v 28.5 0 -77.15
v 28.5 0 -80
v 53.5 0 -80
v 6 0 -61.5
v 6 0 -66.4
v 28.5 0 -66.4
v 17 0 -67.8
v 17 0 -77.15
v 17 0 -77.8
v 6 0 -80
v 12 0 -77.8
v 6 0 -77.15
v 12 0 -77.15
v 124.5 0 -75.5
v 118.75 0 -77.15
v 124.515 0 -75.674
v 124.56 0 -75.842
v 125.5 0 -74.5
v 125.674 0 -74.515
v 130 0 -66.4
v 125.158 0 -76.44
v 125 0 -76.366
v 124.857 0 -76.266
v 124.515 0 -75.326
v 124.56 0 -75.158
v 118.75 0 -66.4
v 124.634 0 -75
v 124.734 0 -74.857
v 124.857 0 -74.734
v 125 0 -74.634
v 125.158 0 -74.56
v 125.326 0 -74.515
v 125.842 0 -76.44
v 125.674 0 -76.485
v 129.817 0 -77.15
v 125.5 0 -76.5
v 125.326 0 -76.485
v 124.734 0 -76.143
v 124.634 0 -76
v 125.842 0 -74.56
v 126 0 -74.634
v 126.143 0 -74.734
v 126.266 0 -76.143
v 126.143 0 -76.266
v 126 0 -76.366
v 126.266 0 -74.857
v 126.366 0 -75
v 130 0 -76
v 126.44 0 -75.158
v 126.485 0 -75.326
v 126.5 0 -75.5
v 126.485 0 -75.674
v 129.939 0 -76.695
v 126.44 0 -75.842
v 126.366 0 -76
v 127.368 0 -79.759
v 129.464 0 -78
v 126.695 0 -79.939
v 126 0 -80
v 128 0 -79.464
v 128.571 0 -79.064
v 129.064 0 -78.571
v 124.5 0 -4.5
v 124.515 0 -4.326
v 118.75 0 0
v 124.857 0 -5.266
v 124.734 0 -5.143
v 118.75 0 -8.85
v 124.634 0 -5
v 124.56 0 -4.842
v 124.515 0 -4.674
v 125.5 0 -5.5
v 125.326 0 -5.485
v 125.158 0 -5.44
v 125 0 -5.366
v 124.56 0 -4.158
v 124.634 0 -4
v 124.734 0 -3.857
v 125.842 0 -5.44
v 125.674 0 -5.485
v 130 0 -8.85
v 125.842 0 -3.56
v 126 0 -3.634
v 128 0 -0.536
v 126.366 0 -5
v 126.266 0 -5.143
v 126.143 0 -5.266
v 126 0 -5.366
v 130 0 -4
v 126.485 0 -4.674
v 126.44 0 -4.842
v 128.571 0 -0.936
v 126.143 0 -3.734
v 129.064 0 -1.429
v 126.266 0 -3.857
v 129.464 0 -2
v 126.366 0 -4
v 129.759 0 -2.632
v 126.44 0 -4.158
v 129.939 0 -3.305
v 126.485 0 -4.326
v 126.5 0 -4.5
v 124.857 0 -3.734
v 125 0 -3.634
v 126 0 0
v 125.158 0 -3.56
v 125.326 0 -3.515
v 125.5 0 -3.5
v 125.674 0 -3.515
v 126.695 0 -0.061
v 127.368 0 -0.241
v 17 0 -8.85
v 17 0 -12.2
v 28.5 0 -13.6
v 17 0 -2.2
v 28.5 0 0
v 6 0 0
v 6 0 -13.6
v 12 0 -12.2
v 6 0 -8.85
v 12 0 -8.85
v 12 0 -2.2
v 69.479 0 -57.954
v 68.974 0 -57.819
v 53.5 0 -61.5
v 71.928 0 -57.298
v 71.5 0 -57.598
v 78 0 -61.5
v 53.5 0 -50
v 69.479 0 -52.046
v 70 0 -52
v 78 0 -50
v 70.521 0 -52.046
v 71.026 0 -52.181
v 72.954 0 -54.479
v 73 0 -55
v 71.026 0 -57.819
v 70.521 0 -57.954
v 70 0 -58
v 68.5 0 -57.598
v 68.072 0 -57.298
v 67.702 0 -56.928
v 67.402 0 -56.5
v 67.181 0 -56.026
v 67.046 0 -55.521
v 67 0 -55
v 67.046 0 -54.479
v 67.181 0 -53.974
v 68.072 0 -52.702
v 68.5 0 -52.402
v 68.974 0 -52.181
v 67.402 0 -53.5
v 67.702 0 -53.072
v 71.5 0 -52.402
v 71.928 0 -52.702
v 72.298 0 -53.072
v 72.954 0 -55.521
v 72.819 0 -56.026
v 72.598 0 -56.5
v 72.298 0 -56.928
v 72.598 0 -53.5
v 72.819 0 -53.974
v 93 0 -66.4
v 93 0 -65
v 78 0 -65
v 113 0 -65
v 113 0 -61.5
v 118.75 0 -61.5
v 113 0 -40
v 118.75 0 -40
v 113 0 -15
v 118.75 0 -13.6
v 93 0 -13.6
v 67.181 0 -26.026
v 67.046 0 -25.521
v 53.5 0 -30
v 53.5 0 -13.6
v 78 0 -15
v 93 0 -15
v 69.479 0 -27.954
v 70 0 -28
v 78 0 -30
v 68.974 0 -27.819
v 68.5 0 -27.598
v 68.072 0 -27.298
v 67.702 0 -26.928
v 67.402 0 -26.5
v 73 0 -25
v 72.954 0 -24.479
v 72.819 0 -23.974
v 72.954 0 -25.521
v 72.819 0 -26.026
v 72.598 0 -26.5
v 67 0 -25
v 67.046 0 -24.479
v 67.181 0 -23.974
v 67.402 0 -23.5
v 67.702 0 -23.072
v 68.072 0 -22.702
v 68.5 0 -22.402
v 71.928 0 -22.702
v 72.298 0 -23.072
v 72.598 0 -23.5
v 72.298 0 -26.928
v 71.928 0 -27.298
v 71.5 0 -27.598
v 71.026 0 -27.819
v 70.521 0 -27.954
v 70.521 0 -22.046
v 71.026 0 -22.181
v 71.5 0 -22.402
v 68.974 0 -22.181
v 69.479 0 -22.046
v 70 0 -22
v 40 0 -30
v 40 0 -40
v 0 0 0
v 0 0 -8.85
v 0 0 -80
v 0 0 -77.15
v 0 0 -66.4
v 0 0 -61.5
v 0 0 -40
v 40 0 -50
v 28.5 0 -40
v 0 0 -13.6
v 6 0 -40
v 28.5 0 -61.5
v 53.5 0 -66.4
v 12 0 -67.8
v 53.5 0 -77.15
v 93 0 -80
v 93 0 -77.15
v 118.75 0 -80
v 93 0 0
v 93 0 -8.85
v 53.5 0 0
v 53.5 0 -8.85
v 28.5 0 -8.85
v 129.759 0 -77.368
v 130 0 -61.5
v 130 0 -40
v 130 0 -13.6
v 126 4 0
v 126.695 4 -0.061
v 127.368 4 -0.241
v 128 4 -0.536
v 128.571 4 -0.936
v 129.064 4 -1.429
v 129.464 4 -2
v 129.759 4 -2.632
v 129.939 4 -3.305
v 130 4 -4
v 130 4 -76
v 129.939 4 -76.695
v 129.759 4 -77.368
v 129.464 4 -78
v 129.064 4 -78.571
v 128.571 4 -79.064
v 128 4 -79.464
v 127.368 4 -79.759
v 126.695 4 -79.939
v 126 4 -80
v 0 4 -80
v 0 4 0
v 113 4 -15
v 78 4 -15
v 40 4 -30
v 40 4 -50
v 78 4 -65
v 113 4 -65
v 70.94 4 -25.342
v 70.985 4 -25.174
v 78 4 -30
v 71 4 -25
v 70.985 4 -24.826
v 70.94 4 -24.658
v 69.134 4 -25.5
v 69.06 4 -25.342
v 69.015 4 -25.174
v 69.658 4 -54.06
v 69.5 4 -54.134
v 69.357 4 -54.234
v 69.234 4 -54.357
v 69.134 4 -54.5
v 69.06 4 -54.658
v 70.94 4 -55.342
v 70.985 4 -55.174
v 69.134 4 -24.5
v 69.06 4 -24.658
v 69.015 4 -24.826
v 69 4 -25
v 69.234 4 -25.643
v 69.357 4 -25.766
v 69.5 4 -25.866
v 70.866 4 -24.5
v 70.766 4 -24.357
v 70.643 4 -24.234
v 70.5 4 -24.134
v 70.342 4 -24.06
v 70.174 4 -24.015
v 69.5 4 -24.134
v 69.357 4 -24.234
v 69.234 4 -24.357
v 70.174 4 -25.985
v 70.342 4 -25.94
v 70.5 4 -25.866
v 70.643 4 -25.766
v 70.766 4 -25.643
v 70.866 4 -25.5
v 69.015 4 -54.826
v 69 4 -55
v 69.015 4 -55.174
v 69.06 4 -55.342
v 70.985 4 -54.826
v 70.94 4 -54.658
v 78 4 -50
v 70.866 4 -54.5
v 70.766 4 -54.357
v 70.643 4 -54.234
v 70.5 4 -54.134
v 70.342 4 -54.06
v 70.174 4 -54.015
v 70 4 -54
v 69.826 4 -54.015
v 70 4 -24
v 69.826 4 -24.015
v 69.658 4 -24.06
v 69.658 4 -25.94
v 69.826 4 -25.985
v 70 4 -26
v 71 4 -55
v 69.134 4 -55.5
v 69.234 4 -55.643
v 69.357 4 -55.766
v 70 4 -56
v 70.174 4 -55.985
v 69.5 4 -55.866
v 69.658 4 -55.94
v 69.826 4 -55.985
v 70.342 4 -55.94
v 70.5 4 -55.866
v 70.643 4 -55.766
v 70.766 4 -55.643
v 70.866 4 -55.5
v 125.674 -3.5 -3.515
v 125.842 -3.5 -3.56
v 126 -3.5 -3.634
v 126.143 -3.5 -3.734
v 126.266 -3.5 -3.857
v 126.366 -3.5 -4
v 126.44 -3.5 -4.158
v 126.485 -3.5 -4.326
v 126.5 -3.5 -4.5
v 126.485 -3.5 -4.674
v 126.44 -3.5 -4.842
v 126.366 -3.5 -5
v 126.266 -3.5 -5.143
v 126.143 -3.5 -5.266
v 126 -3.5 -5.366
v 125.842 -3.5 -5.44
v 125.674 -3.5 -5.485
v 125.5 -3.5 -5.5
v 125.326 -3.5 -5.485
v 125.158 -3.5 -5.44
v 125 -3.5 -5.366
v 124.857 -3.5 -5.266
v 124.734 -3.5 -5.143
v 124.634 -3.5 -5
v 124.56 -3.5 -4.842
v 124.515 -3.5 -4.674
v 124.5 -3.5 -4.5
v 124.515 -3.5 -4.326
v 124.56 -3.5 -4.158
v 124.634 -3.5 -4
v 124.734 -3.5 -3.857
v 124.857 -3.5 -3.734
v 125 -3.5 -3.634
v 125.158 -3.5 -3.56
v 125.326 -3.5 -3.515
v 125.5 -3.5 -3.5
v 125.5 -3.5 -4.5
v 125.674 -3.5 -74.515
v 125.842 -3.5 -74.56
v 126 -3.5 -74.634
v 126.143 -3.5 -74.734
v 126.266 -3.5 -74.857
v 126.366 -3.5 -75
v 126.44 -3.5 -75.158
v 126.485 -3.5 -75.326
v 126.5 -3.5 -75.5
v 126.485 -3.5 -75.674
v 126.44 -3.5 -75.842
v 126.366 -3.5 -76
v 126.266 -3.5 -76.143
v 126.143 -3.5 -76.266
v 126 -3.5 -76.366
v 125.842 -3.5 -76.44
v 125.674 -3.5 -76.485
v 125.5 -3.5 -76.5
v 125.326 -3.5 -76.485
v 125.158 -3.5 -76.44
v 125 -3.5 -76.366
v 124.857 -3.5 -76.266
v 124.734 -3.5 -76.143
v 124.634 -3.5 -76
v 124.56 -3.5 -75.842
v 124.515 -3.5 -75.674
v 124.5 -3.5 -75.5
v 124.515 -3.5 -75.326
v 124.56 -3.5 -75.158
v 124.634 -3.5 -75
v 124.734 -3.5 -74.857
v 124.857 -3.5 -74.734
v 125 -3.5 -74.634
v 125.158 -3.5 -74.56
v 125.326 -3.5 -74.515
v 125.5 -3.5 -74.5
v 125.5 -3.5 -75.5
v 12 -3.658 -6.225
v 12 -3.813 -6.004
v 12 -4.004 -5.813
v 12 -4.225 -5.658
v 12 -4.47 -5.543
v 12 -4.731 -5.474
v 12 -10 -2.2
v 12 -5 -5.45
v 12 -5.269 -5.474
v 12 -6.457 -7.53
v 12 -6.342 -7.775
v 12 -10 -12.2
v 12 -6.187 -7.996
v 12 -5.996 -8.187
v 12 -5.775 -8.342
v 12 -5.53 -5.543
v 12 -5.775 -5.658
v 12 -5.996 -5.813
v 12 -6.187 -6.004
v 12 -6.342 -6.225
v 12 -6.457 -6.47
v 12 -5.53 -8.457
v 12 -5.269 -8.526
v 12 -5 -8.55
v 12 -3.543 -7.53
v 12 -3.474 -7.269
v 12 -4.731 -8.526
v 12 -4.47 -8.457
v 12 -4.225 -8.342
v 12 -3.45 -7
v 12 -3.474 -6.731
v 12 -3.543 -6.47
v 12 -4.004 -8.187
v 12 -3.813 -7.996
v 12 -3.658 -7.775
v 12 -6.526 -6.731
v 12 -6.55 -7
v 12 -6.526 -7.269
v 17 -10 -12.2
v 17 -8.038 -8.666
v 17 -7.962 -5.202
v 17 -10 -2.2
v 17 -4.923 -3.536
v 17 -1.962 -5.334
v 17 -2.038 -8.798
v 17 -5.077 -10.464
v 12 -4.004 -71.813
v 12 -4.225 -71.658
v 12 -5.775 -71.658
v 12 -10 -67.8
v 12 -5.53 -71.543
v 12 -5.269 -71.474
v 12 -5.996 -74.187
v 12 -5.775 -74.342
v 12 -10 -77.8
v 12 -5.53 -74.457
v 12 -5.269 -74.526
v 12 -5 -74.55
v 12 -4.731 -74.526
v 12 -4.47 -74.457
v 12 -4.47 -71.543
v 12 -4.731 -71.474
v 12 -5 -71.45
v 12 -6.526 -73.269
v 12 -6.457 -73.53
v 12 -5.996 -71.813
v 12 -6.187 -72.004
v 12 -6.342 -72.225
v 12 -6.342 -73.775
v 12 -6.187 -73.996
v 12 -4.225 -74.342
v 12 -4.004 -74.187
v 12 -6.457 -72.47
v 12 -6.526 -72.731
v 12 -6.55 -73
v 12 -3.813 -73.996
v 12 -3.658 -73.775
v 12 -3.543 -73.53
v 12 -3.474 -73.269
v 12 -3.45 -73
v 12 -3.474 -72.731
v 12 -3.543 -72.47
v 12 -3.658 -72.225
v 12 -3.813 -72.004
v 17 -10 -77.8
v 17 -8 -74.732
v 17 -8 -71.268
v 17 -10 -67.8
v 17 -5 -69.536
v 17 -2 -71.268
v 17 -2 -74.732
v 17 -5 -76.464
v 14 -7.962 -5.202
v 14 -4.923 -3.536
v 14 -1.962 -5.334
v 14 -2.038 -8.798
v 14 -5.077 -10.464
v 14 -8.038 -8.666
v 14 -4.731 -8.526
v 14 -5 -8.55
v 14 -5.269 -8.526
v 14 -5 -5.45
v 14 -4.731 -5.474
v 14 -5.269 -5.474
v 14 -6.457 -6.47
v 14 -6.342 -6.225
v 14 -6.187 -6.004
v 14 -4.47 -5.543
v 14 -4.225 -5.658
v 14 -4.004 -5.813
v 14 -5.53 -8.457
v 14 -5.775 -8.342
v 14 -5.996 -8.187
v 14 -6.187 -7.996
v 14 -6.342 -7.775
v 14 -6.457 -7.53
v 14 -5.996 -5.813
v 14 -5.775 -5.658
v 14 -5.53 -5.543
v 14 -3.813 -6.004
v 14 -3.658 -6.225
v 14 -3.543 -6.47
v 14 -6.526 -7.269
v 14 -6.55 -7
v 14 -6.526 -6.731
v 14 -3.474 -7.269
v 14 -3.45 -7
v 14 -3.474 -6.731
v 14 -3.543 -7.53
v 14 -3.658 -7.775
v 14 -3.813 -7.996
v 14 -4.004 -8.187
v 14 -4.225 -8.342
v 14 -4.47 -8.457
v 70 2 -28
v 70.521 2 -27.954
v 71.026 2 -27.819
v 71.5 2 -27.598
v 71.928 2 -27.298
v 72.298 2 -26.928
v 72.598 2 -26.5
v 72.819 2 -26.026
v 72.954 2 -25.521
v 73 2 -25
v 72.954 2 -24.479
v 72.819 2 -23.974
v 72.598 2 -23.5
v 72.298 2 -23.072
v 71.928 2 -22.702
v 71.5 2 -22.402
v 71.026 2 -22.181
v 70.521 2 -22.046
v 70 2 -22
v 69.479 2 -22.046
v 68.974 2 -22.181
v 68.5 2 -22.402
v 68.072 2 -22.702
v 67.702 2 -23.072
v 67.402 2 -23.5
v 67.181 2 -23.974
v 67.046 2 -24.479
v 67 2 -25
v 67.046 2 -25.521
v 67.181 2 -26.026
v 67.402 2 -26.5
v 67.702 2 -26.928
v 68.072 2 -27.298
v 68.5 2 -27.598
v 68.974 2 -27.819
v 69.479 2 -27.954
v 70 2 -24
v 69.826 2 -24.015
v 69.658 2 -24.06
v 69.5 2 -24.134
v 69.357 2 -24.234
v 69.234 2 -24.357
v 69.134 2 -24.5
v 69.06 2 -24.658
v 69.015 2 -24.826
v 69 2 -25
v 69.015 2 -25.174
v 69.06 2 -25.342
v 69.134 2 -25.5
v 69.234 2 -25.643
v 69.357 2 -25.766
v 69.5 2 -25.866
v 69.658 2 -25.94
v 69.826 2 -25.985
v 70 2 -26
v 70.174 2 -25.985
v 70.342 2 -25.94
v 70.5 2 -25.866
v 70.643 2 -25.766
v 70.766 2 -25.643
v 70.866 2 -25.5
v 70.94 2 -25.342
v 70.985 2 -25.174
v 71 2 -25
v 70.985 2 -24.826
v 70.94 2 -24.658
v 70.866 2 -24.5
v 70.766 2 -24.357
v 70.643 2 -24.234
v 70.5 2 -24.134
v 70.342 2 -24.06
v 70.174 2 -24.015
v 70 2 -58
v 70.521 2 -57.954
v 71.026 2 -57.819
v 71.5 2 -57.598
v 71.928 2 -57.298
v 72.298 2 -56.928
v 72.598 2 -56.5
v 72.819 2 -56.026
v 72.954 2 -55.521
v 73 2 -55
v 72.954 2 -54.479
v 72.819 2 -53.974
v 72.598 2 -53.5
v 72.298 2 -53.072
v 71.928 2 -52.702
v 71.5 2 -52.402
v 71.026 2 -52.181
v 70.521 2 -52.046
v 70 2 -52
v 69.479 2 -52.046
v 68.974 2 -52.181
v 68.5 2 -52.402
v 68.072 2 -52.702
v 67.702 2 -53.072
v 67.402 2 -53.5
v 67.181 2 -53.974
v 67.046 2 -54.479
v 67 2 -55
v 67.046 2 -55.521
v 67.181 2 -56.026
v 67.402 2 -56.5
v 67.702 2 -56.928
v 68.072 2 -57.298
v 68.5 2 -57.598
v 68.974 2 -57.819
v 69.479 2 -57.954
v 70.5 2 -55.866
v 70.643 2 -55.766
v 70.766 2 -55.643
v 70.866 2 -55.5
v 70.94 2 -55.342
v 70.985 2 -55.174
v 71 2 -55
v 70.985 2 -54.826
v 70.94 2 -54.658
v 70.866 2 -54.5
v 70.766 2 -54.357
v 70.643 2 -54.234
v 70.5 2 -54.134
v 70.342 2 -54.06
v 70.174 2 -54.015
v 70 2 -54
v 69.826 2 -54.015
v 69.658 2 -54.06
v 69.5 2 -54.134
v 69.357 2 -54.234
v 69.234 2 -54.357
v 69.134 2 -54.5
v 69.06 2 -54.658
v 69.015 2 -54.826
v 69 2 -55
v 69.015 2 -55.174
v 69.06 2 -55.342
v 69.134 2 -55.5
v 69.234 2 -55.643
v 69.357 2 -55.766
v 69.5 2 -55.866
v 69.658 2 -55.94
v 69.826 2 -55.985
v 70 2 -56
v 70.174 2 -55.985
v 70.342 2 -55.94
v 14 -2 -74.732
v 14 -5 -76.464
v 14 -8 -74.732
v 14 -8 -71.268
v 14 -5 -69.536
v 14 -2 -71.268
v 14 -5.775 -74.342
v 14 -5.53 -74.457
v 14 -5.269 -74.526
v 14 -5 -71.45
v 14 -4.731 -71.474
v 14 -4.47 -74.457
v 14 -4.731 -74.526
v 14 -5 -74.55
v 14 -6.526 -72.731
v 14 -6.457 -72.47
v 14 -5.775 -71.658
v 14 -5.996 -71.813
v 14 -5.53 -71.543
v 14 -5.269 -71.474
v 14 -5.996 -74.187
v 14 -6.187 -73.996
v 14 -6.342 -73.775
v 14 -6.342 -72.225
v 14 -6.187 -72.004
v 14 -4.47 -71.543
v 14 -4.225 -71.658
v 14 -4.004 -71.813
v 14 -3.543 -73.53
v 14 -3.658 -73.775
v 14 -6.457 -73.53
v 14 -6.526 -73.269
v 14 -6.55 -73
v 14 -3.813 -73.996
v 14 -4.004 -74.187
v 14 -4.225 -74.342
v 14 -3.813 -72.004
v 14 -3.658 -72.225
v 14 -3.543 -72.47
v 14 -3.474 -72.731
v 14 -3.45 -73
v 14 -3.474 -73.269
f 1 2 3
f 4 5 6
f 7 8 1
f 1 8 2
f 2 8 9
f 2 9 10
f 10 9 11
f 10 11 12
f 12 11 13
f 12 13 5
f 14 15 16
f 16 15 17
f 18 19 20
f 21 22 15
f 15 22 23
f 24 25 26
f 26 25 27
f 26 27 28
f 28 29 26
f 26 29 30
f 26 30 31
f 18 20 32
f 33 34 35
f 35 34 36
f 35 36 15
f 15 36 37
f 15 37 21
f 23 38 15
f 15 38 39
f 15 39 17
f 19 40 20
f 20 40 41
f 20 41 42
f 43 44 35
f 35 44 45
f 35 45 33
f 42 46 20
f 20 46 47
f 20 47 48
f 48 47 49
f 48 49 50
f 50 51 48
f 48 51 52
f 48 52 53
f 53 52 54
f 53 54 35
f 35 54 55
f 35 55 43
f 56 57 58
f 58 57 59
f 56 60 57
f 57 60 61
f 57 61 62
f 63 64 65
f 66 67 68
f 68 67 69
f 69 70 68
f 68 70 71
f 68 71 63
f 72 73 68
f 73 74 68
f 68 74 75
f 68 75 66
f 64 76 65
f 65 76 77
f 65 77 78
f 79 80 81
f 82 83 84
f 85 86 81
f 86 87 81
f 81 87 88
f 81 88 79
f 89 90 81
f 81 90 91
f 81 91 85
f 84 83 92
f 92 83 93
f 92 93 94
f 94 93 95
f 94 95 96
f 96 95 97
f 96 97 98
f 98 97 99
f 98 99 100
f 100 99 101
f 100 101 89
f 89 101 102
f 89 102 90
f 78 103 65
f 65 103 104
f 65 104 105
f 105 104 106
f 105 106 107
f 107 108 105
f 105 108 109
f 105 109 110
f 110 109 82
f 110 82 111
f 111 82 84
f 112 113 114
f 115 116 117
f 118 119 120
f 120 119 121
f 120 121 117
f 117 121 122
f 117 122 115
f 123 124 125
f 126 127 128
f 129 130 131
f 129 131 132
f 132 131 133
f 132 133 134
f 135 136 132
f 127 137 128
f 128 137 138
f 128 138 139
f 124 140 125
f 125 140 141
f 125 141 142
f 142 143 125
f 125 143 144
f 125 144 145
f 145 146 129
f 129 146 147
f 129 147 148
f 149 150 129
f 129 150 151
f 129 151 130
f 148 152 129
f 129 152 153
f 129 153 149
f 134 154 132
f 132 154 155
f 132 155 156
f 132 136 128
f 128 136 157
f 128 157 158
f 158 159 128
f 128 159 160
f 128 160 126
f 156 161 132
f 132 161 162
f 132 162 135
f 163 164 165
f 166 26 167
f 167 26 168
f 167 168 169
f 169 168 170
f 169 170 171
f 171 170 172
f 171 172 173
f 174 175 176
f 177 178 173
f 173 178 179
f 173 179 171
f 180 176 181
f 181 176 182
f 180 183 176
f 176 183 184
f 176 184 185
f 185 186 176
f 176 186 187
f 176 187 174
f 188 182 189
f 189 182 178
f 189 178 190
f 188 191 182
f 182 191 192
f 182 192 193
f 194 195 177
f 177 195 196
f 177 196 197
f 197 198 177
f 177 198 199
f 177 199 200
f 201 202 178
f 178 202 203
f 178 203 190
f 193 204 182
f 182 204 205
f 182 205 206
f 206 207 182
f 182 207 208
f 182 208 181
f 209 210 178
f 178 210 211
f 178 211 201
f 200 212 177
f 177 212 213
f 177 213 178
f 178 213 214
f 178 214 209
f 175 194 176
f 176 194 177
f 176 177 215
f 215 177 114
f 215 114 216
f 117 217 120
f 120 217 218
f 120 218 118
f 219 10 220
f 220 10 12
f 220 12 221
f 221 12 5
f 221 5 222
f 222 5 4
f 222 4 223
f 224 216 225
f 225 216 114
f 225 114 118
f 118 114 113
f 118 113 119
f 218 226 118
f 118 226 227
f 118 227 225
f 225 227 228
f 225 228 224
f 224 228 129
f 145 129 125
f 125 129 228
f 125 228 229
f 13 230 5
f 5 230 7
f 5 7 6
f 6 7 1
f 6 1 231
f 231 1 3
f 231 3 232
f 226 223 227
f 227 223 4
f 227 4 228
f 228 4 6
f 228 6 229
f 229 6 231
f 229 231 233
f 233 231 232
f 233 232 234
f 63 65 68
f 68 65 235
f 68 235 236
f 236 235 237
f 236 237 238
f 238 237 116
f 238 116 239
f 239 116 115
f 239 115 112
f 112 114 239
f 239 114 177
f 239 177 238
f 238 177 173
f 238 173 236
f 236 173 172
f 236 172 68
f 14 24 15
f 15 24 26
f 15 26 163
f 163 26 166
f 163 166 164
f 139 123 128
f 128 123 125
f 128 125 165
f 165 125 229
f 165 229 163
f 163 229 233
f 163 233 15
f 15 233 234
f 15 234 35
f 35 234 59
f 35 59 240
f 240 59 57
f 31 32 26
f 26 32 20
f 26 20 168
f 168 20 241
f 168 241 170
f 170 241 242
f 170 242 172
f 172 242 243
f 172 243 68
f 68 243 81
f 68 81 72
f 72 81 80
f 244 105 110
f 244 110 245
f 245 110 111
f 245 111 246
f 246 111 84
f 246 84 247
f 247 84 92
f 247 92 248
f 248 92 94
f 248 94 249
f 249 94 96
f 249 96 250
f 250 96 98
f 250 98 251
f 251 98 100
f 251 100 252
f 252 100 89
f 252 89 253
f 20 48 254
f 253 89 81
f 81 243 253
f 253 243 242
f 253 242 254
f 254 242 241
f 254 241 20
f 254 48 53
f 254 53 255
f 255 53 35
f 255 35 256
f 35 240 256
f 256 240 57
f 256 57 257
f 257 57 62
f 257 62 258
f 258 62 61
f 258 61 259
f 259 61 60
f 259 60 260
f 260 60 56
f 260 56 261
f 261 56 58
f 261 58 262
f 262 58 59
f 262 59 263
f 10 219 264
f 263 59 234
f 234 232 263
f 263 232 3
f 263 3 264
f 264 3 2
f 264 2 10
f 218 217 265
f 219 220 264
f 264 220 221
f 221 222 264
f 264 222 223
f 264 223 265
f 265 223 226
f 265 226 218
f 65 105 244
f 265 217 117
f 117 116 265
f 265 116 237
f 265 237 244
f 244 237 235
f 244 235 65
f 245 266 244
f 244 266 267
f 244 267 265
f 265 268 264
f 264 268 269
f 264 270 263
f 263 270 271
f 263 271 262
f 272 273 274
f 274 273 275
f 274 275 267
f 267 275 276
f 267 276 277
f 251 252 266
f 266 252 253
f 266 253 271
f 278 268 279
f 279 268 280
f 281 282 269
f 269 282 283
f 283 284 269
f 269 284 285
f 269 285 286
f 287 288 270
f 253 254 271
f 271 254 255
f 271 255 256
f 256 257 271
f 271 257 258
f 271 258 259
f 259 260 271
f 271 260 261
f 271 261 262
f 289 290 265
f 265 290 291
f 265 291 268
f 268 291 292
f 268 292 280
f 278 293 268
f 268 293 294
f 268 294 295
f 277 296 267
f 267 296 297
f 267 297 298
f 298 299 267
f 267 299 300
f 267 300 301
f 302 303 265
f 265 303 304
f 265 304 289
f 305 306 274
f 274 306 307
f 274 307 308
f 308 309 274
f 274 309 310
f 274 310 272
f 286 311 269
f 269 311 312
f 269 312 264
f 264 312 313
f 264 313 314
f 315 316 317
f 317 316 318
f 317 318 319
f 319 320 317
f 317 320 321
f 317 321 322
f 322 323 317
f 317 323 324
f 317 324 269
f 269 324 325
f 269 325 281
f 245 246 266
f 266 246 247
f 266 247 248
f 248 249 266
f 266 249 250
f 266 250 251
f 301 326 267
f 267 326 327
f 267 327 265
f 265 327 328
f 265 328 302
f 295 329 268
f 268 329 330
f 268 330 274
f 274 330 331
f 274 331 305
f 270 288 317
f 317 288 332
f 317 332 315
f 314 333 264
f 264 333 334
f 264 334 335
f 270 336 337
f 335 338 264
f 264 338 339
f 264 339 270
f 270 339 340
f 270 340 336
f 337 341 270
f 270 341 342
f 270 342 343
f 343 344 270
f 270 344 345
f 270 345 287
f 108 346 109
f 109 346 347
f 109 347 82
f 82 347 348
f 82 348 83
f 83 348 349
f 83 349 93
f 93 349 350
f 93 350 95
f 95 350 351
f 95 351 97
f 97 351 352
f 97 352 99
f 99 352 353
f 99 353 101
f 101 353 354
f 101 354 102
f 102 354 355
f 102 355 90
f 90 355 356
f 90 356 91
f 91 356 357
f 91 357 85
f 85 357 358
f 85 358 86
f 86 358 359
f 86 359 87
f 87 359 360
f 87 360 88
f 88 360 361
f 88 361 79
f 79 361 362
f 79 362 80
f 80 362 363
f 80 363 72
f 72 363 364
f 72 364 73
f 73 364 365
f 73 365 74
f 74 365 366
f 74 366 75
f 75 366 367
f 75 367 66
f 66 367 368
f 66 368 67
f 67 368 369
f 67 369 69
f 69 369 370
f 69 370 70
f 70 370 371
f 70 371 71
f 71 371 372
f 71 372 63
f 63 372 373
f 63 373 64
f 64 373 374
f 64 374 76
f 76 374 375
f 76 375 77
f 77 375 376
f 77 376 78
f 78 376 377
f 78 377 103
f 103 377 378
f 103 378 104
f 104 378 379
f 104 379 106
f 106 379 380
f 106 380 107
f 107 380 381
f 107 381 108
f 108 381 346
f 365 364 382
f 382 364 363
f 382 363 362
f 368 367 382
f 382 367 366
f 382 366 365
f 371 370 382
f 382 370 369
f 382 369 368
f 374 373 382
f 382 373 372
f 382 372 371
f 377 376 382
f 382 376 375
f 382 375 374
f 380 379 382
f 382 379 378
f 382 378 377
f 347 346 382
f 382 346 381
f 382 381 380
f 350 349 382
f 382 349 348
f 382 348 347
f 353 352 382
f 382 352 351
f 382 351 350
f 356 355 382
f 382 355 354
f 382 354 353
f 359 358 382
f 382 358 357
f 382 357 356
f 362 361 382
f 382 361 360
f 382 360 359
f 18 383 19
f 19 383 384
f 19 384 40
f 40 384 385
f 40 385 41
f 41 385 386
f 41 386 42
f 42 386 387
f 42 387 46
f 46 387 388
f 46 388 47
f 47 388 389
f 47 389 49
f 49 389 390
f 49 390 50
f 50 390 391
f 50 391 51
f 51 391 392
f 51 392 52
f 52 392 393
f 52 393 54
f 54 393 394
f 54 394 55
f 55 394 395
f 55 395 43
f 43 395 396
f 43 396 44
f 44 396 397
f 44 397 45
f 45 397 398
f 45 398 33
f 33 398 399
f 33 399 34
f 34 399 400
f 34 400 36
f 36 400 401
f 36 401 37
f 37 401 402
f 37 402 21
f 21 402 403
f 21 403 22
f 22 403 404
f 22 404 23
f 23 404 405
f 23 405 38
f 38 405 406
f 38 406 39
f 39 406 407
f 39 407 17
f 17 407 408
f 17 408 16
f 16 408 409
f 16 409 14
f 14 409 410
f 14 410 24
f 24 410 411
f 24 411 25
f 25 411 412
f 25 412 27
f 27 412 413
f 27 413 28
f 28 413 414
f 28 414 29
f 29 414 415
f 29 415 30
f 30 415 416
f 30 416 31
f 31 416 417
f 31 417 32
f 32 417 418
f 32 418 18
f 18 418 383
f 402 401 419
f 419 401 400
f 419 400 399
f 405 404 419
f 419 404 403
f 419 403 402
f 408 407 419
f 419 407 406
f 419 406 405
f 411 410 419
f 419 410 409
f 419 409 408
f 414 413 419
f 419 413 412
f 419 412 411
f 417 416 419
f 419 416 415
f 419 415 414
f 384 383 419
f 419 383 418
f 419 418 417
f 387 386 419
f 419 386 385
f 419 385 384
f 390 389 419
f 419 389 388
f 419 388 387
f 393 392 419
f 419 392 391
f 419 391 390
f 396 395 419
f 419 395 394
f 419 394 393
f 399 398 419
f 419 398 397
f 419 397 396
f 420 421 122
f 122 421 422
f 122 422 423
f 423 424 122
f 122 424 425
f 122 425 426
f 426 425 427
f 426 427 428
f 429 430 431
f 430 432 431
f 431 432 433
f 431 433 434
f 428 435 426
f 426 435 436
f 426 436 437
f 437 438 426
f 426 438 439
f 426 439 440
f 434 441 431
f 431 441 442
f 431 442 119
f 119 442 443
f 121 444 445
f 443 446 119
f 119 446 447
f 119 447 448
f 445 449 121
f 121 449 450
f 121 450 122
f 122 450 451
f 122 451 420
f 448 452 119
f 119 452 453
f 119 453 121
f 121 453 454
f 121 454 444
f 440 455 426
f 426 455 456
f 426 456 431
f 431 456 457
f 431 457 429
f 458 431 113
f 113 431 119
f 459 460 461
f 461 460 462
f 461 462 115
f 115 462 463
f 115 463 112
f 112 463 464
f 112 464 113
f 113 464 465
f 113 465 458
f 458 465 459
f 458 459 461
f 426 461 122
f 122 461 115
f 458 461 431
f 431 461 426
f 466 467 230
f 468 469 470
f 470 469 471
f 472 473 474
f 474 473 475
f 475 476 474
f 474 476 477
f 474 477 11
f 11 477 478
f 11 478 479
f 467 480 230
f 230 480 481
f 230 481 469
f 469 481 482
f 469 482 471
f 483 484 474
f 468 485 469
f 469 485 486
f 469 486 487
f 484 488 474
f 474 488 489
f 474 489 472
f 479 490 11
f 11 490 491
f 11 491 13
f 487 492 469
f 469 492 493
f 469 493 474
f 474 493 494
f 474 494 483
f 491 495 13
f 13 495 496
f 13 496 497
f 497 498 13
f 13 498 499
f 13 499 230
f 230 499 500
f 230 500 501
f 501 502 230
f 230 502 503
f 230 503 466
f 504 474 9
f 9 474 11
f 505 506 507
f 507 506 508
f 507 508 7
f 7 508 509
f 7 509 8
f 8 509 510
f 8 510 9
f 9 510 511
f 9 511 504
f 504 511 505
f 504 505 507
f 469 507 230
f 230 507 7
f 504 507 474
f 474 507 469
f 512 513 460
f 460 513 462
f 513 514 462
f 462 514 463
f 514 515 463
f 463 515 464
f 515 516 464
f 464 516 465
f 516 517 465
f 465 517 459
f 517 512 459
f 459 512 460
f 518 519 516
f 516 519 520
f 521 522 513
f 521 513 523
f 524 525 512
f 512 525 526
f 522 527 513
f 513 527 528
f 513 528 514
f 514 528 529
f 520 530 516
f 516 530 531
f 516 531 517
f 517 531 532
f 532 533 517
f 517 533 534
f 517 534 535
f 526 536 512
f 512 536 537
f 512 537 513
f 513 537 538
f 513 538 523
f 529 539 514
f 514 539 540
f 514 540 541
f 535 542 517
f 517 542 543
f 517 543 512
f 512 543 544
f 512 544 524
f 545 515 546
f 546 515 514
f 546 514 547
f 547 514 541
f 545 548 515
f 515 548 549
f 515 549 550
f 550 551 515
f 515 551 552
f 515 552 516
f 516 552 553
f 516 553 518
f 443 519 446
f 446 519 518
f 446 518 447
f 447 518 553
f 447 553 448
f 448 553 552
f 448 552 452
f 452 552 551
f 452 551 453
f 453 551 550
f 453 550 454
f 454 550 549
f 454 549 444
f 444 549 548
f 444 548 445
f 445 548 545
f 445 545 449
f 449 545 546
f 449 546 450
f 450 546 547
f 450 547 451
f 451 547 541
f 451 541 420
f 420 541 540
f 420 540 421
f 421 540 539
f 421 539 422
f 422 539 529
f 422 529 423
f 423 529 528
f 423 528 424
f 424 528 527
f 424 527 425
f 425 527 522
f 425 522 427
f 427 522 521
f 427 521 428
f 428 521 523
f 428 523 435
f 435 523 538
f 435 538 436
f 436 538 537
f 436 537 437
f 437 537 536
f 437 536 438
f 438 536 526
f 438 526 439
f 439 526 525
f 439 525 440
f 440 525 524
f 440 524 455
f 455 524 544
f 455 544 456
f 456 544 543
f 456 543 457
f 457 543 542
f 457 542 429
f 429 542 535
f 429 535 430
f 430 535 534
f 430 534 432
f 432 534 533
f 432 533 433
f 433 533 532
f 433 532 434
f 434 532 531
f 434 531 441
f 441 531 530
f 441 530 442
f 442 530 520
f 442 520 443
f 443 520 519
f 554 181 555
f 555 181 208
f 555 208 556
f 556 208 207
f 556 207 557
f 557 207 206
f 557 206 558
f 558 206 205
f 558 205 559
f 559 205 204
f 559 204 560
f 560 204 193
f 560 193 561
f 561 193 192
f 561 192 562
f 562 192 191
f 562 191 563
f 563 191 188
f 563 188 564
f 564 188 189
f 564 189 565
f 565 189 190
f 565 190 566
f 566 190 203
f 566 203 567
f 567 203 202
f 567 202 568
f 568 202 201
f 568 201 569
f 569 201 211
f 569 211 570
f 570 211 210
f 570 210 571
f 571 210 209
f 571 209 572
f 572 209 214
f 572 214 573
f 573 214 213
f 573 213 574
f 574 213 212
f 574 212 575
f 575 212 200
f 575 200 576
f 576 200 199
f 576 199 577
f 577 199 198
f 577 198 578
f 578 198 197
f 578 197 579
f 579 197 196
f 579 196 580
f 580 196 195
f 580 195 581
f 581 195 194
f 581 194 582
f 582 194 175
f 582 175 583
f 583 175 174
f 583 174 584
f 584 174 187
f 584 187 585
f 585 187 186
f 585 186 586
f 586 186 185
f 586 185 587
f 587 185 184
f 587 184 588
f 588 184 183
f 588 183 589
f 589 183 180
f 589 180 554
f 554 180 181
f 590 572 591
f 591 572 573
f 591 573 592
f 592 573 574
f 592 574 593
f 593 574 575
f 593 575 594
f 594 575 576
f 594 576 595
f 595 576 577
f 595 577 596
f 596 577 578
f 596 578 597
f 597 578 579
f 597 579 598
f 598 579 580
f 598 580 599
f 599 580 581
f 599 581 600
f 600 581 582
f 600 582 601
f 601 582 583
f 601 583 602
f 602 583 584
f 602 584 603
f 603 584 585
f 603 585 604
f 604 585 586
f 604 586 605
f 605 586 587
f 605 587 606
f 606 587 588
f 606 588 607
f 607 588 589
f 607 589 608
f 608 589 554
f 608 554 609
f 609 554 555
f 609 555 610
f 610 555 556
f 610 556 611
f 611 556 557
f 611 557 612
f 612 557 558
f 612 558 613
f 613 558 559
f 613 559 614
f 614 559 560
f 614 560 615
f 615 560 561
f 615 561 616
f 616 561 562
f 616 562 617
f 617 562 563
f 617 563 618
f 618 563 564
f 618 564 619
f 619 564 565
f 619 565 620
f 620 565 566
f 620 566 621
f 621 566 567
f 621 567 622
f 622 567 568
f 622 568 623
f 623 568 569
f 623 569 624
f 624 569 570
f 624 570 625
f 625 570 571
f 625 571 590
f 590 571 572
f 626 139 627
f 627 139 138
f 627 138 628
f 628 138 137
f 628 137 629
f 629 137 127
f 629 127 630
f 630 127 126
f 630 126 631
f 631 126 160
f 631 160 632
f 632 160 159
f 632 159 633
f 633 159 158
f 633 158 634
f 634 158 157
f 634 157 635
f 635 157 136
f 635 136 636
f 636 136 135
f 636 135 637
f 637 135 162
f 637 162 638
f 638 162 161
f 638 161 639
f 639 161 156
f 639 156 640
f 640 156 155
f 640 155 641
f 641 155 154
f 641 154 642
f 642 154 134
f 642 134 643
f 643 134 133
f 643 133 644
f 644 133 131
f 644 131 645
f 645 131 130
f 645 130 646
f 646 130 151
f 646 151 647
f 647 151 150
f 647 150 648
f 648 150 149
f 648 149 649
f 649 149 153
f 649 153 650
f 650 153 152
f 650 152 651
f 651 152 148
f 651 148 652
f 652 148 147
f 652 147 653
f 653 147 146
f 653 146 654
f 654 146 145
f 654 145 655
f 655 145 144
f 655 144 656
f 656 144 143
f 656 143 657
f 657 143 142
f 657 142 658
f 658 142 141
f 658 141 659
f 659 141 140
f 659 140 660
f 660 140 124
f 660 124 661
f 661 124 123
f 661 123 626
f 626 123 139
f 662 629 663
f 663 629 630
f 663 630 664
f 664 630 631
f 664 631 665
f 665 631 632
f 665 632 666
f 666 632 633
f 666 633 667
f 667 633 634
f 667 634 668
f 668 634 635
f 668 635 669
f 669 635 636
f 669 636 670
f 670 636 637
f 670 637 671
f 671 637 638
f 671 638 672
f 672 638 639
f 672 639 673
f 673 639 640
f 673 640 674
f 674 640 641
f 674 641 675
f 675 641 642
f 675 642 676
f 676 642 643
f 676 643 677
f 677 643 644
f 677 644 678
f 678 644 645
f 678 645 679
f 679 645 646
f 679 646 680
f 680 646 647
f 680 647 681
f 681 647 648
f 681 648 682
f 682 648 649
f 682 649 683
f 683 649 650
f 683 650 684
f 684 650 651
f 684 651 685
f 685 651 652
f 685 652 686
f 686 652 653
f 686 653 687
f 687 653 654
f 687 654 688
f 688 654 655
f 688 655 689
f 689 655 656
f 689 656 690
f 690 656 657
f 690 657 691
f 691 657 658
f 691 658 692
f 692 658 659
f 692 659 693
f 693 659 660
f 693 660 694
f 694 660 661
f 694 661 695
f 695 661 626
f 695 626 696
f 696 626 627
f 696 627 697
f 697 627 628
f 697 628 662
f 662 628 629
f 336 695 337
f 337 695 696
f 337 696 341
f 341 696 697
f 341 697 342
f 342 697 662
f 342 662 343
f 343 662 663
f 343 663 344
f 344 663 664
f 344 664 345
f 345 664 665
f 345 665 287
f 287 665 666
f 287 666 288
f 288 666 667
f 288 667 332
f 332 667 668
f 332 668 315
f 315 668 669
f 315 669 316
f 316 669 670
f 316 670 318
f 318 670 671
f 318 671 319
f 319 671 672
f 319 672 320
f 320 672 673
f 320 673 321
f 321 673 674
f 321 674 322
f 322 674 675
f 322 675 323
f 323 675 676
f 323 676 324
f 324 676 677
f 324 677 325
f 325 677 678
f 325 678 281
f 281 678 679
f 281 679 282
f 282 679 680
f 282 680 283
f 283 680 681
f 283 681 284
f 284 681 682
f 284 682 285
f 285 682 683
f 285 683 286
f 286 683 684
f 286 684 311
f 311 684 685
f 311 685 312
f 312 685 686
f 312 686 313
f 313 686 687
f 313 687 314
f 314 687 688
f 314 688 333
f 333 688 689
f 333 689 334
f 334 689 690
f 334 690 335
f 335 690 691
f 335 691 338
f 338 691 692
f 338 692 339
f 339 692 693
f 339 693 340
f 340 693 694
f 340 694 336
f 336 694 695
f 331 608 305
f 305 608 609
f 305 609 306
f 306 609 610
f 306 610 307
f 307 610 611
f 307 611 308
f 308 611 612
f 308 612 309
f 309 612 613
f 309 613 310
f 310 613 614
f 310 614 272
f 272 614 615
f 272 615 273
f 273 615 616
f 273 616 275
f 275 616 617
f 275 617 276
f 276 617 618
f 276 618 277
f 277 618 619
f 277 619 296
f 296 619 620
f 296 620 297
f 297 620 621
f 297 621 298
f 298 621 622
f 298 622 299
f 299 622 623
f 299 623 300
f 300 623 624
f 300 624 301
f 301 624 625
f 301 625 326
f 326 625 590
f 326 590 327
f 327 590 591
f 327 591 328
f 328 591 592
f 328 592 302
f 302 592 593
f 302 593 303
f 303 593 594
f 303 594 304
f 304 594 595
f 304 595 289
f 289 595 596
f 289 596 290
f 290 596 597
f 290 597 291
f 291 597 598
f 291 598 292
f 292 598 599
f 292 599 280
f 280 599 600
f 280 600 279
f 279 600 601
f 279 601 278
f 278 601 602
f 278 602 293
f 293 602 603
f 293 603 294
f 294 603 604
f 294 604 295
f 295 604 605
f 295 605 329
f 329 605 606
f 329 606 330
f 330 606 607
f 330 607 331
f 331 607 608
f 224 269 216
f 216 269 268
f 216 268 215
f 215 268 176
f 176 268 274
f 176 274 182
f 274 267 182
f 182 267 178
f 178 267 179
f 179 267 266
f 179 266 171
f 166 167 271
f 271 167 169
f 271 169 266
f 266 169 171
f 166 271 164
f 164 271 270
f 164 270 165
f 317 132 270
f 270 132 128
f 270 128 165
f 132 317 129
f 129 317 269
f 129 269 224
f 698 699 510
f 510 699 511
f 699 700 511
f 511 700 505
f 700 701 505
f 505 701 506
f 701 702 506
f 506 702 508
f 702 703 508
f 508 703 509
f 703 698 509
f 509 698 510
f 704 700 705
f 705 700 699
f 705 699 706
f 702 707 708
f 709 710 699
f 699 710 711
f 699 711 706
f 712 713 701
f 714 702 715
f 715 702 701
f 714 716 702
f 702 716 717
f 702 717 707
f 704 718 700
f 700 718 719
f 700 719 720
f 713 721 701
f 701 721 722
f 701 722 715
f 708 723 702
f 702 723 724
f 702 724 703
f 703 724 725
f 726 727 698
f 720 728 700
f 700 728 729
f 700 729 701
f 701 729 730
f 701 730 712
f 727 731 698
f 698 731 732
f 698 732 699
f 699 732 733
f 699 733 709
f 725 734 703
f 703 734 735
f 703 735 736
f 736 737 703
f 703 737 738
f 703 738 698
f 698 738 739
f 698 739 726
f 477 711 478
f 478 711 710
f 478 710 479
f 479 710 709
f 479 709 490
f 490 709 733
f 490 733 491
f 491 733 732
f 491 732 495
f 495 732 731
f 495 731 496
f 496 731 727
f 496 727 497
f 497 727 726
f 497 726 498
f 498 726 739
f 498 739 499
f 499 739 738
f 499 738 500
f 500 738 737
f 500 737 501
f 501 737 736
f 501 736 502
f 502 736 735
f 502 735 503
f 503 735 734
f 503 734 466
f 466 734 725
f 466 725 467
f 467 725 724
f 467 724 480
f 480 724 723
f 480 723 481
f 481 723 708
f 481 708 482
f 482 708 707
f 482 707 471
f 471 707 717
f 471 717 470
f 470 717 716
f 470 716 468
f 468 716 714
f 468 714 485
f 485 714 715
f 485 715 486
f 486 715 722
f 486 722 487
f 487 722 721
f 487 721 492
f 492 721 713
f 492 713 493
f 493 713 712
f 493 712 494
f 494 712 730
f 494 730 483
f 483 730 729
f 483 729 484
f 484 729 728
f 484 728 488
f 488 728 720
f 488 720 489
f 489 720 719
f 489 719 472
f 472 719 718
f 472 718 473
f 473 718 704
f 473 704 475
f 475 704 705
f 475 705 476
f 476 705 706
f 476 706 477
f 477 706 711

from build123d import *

# Parameters (mm, degrees)
BOSS_EXTRUDE1_DEPTH = 4
SKETCH2_R           = 1
BOSS_EXTRUDE2_DEPTH = 3.5
SKETCH3_W           = 5
SKETCH3_H           = 10
BOSS_EXTRUDE3_DEPTH = 10
SKETCH4_R           = 1.55
CUT_EXTRUDE1_DEPTH  = 3
SKETCH4_3_R         = 1.55
CUT_EXTRUDE2_DEPTH  = 5
SKETCH7_R           = 3
CUT_EXTRUDE3_DEPTH  = 2
SKETCH8_R           = 1
CUT_EXTRUDE4_DEPTH  = 2
SKETCH9_R           = 1
CUT_EXTRUDE5_DEPTH  = 2
CUT_EXTRUDE6_DEPTH  = 4
SKETCH6_R           = 1.55
CUT_EXTRUDE7_DEPTH  = 3
SKETCH6_3_R         = 1.55
CUT_EXTRUDE8_DEPTH  = 5


with BuildPart() as part:
    # Sketch1 → Boss-Extrude1 (new body)
    with BuildSketch(Plane(origin=(0, 0, 0), x_dir=(1, 0, 0), z_dir=(0, 1, 0))):
        with BuildLine():
            Line((0, 80), (0, 0))
            Line((0, 0), (126, 0))
            ThreePointArc((126, 0), (128.828427125, 1.171572875), (130, 4))
            Line((130, 4), (130, 76))
            ThreePointArc((130, 76), (128.828427125, 78.828427125), (126, 80))
            Line((126, 80), (0, 80))
        make_face()
    extrude(amount=BOSS_EXTRUDE1_DEPTH)

    # Sketch2 → Boss-Extrude2 (add)
    with BuildSketch(Plane(origin=(0, 0, 0), x_dir=(-1, 0, 0), z_dir=(0, -1, 0))):
        with Locations(Location((-125.5, 4.5, 0), (0, 0, 270))):
            Circle(SKETCH2_R)
        with Locations(Location((-125.5, 75.5, 0), (0, 0, 270))):
            Circle(SKETCH2_R)
    extrude(amount=BOSS_EXTRUDE2_DEPTH)

    # Sketch3 → Boss-Extrude3 (add)
    with BuildSketch(Plane(origin=(0, 0, 0), x_dir=(-1, 0, 0), z_dir=(0, -1, 0))):
        with Locations((-14.5, 7.2)):
            Rectangle(SKETCH3_W, SKETCH3_H)
        with Locations((-14.5, 72.8)):
            Rectangle(SKETCH3_W, SKETCH3_H)
    extrude(amount=BOSS_EXTRUDE3_DEPTH)

    # Sketch4 → Cut-Extrude1 (cut)
    with BuildSketch(Plane(origin=(17, 0, 0), x_dir=(0, 0, -1), z_dir=(1, 0, 0))):
        Polygon((3.535898385, -4.923428426), (5.201636264, -7.961714213), (8.665737879, -8.038285787), (10.464101615, -5.076571574), (8.798363736, -2.038285787), (5.334262121, -1.961714213), align=None)
        with Locations((7, -5)):
            Circle(SKETCH4_R, mode=Mode.SUBTRACT)
    extrude(amount=-CUT_EXTRUDE1_DEPTH, mode=Mode.SUBTRACT)

    # Sketch4<3> → Cut-Extrude2 (cut)
    with BuildSketch(Plane(origin=(17, 0, 0), x_dir=(0, 0, -1), z_dir=(1, 0, 0))):
        with Locations((7, -5)):
            Circle(SKETCH4_3_R)
    extrude(amount=-CUT_EXTRUDE2_DEPTH, mode=Mode.SUBTRACT)

    # Sketch7 → Cut-Extrude3 (cut)
    with BuildSketch(Plane.XZ):
        with Locations(Location((70, -25, 0), (0, 0, 270))):
            Circle(SKETCH7_R)
        with Locations(Location((70, -55, 0), (0, 0, 270))):
            Circle(SKETCH7_R)
    extrude(amount=-CUT_EXTRUDE3_DEPTH, mode=Mode.SUBTRACT)

    # Sketch8 → Cut-Extrude4 (cut)
    with BuildSketch(Plane(origin=(0, 2, 0), x_dir=(-1, 0, 0), z_dir=(0, -1, 0))):
        with Locations(Location((-70, 55, 0), (0, 0, 90))):
            Circle(SKETCH8_R)
    extrude(amount=-CUT_EXTRUDE4_DEPTH, mode=Mode.SUBTRACT)

    # Sketch9 → Cut-Extrude5 (cut)
    with BuildSketch(Plane(origin=(0, 2, 0), x_dir=(-1, 0, 0), z_dir=(0, -1, 0))):
        with Locations(Location((-70, 25, 0), (0, 0, 90))):
            Circle(SKETCH9_R)
    extrude(amount=-CUT_EXTRUDE5_DEPTH, mode=Mode.SUBTRACT)

    # Sketch10 → Cut-Extrude6 (cut)
    with BuildSketch(Plane(origin=(0, 0, 0), x_dir=(-1, 0, 0), z_dir=(0, -1, 0))):
        Polygon((-78, 30), (-40, 30), (-40, 50), (-78, 50), (-78, 65), (-113, 65), (-113, 15), (-78, 15), align=None)
    extrude(amount=-CUT_EXTRUDE6_DEPTH, mode=Mode.SUBTRACT)

    # Sketch6 → Cut-Extrude7 (cut)
    with BuildSketch(Plane(origin=(17, 0, 0), x_dir=(0, 0, -1), z_dir=(1, 0, 0))):
        Polygon((76.464101615, -5), (74.732050808, -2), (71.267949192, -2), (69.535898385, -5), (71.267949192, -8), (74.732050808, -8), align=None)
        with Locations((73, -5)):
            Circle(SKETCH6_R, mode=Mode.SUBTRACT)
    extrude(amount=-CUT_EXTRUDE7_DEPTH, mode=Mode.SUBTRACT)

    # Sketch6<3> → Cut-Extrude8 (cut)
    with BuildSketch(Plane(origin=(17, 0, 0), x_dir=(0, 0, -1), z_dir=(1, 0, 0))):
        with Locations((73, -5)):
            Circle(SKETCH6_3_R)
    extrude(amount=-CUT_EXTRUDE8_DEPTH, mode=Mode.SUBTRACT)


solid = part.part
